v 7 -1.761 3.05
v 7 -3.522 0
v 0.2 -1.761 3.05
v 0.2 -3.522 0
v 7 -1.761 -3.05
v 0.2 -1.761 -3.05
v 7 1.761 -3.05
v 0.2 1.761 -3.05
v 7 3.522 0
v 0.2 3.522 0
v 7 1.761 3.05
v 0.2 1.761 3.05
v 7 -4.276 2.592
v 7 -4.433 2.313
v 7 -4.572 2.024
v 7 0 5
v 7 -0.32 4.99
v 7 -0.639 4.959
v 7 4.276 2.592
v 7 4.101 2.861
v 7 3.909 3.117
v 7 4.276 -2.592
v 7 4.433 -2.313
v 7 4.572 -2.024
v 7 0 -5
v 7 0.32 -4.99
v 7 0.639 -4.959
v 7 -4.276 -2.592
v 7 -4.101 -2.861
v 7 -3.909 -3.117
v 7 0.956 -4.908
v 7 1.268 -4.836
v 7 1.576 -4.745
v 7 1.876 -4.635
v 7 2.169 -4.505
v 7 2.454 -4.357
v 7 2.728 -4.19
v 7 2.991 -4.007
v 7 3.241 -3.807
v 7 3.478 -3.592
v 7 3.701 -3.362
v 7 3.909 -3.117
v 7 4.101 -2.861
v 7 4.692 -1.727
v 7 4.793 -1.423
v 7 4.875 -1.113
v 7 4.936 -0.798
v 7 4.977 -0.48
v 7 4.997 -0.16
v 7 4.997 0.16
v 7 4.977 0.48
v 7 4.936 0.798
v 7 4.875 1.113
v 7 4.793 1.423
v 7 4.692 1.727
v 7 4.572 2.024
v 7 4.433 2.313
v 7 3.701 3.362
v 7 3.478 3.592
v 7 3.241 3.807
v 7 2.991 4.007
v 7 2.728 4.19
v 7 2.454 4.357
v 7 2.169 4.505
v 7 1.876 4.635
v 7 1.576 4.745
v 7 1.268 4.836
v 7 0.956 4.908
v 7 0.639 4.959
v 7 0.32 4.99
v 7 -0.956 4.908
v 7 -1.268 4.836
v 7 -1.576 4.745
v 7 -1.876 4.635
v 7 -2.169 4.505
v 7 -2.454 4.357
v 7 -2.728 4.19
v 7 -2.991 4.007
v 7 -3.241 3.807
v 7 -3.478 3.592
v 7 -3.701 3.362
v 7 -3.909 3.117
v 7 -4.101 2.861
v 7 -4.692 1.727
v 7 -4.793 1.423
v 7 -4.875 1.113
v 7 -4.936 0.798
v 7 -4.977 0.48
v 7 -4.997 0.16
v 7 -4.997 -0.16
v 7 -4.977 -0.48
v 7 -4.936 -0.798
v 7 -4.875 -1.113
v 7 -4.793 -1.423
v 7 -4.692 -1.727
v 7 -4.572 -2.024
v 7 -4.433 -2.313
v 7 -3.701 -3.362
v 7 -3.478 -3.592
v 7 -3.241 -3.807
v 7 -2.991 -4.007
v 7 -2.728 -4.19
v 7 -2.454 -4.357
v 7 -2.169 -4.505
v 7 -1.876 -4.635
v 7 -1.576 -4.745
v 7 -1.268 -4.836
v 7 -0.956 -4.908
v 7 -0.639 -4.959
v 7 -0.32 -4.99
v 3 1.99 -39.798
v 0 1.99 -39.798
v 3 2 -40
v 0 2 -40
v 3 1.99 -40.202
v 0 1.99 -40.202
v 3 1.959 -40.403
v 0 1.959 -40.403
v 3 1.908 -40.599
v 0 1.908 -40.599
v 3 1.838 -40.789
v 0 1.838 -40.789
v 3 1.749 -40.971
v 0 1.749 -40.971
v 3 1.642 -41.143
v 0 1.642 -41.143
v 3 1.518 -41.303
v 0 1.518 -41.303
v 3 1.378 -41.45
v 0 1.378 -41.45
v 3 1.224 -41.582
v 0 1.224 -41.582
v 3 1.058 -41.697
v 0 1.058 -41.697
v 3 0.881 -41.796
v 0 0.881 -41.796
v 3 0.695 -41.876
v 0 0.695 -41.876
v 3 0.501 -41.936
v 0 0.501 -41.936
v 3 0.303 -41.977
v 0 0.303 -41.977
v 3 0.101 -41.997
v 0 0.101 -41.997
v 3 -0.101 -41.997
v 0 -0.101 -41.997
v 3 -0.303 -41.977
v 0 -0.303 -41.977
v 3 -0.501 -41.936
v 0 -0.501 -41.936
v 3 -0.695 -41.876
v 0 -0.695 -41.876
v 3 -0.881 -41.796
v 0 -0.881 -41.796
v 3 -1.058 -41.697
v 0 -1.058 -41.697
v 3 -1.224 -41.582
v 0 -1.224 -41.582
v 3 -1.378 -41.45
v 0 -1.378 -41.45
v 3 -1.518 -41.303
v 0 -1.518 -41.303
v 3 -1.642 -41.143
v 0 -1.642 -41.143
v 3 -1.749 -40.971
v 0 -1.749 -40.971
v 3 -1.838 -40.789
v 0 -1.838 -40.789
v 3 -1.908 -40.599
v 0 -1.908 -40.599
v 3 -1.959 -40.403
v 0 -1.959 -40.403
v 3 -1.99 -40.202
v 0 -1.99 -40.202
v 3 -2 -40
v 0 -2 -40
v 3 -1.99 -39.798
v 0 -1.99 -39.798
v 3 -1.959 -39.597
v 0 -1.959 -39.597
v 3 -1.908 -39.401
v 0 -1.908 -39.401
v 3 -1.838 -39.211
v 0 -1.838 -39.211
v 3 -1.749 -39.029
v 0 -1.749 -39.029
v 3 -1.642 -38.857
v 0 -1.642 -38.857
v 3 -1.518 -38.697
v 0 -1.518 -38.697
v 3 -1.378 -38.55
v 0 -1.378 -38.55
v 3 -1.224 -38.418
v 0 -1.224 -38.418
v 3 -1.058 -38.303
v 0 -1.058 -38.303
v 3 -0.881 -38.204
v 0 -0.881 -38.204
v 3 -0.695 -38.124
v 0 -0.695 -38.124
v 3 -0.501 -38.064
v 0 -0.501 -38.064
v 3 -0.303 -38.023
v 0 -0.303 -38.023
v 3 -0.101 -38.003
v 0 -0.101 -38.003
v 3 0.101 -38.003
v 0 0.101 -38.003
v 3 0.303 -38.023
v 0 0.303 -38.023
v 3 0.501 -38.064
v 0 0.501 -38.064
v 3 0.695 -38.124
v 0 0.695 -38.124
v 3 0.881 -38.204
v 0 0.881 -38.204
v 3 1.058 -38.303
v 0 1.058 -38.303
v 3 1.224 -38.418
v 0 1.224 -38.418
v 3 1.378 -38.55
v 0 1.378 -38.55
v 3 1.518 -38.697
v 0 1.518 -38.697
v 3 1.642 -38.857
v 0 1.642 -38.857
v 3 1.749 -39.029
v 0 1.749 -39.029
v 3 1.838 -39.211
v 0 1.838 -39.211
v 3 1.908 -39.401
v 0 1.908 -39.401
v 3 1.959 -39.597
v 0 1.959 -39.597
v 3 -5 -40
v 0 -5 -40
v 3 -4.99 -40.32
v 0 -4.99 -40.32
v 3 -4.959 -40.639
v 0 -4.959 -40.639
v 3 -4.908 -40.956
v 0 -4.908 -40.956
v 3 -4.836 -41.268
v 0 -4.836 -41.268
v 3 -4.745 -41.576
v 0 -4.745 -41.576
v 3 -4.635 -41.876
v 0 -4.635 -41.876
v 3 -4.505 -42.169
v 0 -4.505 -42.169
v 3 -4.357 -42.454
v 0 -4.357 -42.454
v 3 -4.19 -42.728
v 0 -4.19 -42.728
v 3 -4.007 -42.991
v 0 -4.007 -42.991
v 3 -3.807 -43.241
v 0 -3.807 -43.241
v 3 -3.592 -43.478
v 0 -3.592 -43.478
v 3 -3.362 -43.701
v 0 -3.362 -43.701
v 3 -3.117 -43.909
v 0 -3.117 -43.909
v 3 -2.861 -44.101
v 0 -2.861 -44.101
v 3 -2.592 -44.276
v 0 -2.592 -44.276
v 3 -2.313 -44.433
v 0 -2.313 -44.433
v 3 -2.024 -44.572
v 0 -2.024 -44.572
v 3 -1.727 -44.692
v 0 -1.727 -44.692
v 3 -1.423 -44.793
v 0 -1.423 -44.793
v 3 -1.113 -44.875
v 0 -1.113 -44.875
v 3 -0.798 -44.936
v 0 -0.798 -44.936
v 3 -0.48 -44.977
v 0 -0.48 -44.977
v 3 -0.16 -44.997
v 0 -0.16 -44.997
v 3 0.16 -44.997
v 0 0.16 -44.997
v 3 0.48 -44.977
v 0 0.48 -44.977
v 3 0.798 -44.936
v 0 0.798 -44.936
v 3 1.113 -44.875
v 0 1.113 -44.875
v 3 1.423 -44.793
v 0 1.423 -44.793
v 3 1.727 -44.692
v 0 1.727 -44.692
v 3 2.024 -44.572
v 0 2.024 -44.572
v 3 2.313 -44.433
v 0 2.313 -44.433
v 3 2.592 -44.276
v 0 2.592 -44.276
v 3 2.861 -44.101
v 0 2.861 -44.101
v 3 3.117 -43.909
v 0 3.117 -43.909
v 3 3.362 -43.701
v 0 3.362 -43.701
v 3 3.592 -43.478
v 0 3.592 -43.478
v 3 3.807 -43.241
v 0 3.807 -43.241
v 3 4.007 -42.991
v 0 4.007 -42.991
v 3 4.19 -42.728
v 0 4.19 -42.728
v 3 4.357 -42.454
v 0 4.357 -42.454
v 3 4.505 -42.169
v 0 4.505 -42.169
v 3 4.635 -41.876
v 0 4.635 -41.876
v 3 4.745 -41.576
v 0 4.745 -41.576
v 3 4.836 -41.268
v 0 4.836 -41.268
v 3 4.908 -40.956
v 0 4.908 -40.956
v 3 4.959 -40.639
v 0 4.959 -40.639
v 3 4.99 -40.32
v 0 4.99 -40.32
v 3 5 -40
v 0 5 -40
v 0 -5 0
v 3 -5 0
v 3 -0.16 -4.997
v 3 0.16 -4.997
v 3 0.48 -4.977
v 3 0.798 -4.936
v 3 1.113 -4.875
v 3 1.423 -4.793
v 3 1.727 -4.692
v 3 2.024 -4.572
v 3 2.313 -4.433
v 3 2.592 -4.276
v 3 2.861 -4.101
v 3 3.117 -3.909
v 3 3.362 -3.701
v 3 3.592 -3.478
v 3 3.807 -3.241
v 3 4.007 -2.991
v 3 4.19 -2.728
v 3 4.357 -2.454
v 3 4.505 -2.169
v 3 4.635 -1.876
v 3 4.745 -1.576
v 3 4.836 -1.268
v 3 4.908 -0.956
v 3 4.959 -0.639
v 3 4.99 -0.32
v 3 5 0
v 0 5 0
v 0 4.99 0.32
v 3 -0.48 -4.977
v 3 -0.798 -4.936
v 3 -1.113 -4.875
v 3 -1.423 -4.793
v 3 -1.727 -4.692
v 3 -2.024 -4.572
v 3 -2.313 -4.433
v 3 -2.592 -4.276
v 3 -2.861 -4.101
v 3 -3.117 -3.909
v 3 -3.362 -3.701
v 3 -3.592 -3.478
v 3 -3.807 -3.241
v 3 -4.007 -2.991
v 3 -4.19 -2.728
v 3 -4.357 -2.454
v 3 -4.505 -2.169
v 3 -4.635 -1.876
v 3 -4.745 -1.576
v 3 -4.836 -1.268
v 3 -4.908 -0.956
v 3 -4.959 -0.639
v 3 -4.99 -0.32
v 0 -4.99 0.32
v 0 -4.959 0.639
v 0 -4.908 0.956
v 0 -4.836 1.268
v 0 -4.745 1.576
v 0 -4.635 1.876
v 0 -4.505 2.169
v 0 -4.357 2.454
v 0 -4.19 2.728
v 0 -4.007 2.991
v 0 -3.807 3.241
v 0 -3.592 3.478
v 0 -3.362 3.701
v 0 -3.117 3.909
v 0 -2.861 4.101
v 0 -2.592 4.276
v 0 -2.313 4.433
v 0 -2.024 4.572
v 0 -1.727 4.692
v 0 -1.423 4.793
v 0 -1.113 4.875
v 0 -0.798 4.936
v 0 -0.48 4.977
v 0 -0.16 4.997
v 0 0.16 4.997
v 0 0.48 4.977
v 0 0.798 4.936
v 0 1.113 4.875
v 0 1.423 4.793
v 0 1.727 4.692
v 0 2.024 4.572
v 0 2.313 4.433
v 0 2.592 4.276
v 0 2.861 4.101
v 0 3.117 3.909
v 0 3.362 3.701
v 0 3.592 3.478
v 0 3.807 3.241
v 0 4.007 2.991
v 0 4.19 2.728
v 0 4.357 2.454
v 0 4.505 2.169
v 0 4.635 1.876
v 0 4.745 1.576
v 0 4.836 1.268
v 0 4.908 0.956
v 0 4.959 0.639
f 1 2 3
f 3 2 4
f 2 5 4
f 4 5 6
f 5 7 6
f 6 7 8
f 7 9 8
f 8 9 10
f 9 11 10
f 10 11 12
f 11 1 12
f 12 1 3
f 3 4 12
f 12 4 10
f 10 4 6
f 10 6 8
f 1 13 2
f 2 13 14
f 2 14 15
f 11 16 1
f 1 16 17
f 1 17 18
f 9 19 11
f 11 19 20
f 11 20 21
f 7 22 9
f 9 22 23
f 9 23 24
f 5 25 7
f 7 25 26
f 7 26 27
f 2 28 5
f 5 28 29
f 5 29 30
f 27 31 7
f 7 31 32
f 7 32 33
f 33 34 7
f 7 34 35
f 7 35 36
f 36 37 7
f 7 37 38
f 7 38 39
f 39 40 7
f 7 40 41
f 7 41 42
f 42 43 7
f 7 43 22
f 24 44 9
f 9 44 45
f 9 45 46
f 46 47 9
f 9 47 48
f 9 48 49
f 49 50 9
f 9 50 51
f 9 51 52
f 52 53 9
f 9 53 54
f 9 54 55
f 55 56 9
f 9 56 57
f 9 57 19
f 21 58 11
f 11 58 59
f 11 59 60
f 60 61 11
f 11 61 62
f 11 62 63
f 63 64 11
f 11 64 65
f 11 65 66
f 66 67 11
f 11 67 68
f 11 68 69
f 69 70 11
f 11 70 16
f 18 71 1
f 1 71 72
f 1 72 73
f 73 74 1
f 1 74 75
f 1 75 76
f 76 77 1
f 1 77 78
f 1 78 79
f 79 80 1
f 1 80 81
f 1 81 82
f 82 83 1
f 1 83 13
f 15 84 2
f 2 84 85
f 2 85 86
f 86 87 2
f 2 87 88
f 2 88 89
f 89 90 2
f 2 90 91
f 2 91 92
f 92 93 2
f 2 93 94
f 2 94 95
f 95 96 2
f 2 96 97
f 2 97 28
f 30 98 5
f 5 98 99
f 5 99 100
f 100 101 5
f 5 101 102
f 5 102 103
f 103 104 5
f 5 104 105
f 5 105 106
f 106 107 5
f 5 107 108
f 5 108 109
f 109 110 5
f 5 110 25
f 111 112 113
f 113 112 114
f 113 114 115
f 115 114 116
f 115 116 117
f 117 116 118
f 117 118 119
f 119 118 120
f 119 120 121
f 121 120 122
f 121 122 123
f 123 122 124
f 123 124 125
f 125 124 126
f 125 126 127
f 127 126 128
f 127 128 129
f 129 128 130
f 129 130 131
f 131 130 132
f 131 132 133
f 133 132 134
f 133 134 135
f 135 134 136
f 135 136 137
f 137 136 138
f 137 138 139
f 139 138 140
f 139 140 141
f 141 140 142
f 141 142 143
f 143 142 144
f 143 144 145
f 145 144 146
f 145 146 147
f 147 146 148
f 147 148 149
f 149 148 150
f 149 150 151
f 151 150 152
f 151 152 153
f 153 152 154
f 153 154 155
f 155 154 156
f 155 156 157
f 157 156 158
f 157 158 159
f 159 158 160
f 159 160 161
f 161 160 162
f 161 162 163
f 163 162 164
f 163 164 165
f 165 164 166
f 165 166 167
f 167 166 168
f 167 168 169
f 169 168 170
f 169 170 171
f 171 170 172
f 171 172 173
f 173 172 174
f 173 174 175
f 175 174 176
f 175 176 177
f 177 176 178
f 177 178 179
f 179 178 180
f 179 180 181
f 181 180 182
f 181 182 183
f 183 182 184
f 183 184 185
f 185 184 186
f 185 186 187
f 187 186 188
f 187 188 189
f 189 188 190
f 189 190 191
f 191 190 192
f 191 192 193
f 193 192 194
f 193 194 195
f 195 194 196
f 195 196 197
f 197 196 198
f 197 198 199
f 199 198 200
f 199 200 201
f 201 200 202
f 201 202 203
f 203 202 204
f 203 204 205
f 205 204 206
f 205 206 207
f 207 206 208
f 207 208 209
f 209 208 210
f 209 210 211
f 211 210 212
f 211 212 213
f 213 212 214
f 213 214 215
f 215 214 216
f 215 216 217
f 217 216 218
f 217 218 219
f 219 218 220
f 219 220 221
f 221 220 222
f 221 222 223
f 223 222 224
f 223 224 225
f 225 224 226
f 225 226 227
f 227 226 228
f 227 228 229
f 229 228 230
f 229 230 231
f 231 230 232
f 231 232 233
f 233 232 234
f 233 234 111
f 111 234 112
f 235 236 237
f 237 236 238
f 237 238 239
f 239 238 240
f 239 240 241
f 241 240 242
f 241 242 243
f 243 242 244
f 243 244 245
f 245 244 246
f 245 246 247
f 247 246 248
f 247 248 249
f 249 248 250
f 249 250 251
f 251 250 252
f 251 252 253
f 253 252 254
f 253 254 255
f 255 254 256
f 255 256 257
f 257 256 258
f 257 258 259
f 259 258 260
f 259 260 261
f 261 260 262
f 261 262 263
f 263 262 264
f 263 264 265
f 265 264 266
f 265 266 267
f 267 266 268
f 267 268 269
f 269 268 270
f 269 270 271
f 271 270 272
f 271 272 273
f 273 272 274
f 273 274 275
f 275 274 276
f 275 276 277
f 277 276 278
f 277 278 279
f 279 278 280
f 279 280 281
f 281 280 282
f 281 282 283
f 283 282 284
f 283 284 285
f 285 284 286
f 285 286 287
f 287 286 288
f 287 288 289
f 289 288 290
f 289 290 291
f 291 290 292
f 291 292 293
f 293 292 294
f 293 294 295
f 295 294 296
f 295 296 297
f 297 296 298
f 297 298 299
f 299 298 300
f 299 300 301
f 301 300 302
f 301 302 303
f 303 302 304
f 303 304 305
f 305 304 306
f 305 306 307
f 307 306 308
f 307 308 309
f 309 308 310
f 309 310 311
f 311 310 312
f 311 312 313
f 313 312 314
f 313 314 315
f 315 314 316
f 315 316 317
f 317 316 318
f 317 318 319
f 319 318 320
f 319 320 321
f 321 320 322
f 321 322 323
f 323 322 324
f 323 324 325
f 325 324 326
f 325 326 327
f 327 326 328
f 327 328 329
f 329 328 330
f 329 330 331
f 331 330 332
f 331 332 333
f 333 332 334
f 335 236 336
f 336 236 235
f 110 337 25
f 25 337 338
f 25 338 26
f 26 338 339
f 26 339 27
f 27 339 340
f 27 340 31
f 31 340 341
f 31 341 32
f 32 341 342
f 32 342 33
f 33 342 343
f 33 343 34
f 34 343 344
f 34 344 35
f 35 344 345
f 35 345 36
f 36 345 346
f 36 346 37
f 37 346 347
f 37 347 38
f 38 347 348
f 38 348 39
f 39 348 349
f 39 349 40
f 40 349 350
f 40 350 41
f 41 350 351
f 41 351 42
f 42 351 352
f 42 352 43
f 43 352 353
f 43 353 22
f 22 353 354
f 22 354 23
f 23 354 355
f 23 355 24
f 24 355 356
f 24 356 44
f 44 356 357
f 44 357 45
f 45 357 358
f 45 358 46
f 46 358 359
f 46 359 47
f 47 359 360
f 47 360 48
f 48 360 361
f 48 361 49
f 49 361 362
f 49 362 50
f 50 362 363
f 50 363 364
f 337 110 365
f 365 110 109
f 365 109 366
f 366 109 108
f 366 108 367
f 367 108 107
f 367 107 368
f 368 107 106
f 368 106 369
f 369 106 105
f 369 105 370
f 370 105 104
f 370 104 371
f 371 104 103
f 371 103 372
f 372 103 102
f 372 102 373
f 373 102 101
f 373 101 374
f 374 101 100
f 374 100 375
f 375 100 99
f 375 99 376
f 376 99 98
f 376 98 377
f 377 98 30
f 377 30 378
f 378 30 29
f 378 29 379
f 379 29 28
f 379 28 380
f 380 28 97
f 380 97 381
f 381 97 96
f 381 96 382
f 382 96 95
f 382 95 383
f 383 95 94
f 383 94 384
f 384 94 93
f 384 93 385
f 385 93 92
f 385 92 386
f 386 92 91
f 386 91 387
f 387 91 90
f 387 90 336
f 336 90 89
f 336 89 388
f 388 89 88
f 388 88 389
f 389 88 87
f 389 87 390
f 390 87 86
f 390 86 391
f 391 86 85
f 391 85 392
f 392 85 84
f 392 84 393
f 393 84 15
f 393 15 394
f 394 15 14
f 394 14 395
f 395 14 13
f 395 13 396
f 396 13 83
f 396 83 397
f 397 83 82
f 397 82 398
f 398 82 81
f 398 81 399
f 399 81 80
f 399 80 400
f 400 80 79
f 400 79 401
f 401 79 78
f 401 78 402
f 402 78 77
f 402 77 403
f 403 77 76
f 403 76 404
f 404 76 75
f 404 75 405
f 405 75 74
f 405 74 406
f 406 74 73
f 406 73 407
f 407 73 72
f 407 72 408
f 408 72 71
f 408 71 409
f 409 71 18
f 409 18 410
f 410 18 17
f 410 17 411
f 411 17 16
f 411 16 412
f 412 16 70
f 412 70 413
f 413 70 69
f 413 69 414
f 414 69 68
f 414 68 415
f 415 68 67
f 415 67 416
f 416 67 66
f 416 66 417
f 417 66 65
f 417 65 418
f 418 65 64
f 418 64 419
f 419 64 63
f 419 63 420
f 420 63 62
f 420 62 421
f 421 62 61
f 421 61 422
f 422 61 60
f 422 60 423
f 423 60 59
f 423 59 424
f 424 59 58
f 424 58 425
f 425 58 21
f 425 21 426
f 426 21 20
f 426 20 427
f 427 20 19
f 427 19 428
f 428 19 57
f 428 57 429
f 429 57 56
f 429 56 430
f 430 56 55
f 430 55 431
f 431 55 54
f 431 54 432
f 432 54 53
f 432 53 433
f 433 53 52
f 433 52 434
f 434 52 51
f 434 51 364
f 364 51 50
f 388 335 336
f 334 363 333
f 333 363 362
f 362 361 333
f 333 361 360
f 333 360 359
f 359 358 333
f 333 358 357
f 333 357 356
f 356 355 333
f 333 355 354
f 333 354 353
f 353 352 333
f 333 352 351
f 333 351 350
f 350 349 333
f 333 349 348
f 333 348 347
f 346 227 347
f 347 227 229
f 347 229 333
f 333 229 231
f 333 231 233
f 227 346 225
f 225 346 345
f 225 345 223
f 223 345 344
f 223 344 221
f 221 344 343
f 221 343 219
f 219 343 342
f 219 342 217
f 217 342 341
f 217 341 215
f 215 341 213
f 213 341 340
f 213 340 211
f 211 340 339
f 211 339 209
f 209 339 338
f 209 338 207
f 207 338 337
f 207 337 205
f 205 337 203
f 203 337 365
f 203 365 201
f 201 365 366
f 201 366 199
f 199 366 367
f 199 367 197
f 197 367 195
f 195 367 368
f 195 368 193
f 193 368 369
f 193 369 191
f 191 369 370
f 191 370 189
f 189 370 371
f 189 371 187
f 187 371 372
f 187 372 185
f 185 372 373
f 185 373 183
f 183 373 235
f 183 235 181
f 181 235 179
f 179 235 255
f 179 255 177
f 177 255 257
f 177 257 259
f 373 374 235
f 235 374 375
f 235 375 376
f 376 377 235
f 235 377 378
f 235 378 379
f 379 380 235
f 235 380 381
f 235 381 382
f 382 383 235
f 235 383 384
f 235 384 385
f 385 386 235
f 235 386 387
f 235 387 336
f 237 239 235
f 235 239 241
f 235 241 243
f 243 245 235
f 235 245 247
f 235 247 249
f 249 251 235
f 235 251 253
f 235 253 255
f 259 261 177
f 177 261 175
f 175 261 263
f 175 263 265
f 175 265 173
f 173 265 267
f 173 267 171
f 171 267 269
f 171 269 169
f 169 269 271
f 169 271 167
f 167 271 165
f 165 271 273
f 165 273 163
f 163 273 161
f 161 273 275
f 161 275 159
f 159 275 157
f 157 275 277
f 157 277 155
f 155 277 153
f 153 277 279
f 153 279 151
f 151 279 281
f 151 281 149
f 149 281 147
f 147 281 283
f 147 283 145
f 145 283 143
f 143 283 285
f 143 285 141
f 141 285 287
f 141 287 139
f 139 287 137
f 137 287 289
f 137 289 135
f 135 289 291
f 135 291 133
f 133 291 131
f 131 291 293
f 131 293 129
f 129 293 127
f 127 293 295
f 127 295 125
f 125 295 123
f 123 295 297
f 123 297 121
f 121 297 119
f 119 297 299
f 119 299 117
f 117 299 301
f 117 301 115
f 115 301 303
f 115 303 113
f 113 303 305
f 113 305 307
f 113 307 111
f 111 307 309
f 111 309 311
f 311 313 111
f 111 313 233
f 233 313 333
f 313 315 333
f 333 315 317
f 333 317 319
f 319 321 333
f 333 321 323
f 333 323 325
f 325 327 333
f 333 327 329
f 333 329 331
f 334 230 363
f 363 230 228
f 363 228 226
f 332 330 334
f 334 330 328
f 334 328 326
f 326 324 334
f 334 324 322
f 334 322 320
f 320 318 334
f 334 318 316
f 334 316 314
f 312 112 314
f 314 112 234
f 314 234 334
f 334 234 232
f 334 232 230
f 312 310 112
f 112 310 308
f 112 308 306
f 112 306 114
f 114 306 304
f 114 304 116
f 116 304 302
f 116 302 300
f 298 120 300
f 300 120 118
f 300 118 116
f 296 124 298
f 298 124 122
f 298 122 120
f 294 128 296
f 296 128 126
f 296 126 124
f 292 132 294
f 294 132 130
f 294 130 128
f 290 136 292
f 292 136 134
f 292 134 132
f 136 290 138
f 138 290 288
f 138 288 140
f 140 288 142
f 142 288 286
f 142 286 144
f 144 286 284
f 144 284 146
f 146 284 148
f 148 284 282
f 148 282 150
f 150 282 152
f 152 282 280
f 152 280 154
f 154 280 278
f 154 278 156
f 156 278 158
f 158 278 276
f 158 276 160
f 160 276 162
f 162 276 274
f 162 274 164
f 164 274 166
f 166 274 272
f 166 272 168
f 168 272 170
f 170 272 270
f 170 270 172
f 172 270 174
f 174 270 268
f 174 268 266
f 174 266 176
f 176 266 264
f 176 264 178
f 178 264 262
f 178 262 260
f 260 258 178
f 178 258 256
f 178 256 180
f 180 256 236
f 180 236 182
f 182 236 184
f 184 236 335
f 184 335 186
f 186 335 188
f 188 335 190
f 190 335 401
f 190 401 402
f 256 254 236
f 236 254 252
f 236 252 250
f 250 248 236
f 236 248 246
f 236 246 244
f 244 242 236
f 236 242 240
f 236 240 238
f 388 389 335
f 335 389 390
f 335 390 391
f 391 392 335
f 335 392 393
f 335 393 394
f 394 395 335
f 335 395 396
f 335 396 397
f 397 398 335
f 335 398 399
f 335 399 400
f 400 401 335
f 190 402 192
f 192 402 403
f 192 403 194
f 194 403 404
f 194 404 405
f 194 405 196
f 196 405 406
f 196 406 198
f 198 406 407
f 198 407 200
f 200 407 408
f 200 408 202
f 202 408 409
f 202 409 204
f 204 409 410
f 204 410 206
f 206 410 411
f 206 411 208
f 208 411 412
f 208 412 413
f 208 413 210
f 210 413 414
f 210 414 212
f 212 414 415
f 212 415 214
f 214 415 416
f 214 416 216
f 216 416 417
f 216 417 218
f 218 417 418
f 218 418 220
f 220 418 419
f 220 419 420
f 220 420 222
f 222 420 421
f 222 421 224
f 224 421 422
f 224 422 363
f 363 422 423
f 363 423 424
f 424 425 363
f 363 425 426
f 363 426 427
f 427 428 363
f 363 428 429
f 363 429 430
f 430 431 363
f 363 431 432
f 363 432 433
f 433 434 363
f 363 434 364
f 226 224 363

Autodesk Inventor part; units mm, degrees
ref_plane "YZ Plane" through (0, 0, 0) normal (1, 0, 0) x (0, 1, 0)
ref_plane "XZ Plane" through (0, 0, 0) normal (0, 1, 0) x (-1, 0, 0)
ref_plane "XY Plane" through (0, 0, 0) normal (0, 0, 1) x (1, 0, 0)
sketch "Boceto1" plane through (0, 0, 0) normal (1, 0, 0) x (0, 1, 0)
  arc A0 (5, 0) -> (-5, 0) centre (0, 0) ccw
  arc A1 (-5, -40) -> (5, -40) centre (0, -40) ccw
  line L0 (5, 0) -> (5, -40)
  line L1 (-5, -40) -> (-5, 0)
  circle A2 centre (0, -40) radius 2
  dimension "d1" = 10
  dimension "d2" = 10
  dimension "d3" = 40
  dimension "d4" = 4
extrude "Extrusión1" add sketch "Boceto1" along normal blind 3
sketch "Boceto2" plane through (3, 0, 0) normal (1, 0, 0) x (0, 0, -1)
  circle A0 centre (0, 0) radius 5
extrude "Extrusión2" add sketch "Boceto2" along normal blind 4
sketch "Boceto3" plane through (7, 0, 0) normal (1, 0, 0) x (0, 0, -1)
  line L0 (0, 3.5218) -> (3.05, 1.7609)
  line L1 (3.05, 1.7609) -> (3.05, -1.7609)
  line L2 (3.05, -1.7609) -> (0, -3.5218)
  line L3 (0, -3.5218) -> (-3.05, -1.7609)
  line L4 (-3.05, -1.7609) -> (-3.05, 1.7609)
  line L5 (-3.05, 1.7609) -> (0, 3.5218)
  point P0 (0, 0)
  point P1 (0, 0)
  point P2 (3.05, 0)
  dimension "d10" = 6.1
extrude "Extrusión3" cut sketch "Boceto3" against normal blind 6.8
properties part number "Transmision_Inf"
